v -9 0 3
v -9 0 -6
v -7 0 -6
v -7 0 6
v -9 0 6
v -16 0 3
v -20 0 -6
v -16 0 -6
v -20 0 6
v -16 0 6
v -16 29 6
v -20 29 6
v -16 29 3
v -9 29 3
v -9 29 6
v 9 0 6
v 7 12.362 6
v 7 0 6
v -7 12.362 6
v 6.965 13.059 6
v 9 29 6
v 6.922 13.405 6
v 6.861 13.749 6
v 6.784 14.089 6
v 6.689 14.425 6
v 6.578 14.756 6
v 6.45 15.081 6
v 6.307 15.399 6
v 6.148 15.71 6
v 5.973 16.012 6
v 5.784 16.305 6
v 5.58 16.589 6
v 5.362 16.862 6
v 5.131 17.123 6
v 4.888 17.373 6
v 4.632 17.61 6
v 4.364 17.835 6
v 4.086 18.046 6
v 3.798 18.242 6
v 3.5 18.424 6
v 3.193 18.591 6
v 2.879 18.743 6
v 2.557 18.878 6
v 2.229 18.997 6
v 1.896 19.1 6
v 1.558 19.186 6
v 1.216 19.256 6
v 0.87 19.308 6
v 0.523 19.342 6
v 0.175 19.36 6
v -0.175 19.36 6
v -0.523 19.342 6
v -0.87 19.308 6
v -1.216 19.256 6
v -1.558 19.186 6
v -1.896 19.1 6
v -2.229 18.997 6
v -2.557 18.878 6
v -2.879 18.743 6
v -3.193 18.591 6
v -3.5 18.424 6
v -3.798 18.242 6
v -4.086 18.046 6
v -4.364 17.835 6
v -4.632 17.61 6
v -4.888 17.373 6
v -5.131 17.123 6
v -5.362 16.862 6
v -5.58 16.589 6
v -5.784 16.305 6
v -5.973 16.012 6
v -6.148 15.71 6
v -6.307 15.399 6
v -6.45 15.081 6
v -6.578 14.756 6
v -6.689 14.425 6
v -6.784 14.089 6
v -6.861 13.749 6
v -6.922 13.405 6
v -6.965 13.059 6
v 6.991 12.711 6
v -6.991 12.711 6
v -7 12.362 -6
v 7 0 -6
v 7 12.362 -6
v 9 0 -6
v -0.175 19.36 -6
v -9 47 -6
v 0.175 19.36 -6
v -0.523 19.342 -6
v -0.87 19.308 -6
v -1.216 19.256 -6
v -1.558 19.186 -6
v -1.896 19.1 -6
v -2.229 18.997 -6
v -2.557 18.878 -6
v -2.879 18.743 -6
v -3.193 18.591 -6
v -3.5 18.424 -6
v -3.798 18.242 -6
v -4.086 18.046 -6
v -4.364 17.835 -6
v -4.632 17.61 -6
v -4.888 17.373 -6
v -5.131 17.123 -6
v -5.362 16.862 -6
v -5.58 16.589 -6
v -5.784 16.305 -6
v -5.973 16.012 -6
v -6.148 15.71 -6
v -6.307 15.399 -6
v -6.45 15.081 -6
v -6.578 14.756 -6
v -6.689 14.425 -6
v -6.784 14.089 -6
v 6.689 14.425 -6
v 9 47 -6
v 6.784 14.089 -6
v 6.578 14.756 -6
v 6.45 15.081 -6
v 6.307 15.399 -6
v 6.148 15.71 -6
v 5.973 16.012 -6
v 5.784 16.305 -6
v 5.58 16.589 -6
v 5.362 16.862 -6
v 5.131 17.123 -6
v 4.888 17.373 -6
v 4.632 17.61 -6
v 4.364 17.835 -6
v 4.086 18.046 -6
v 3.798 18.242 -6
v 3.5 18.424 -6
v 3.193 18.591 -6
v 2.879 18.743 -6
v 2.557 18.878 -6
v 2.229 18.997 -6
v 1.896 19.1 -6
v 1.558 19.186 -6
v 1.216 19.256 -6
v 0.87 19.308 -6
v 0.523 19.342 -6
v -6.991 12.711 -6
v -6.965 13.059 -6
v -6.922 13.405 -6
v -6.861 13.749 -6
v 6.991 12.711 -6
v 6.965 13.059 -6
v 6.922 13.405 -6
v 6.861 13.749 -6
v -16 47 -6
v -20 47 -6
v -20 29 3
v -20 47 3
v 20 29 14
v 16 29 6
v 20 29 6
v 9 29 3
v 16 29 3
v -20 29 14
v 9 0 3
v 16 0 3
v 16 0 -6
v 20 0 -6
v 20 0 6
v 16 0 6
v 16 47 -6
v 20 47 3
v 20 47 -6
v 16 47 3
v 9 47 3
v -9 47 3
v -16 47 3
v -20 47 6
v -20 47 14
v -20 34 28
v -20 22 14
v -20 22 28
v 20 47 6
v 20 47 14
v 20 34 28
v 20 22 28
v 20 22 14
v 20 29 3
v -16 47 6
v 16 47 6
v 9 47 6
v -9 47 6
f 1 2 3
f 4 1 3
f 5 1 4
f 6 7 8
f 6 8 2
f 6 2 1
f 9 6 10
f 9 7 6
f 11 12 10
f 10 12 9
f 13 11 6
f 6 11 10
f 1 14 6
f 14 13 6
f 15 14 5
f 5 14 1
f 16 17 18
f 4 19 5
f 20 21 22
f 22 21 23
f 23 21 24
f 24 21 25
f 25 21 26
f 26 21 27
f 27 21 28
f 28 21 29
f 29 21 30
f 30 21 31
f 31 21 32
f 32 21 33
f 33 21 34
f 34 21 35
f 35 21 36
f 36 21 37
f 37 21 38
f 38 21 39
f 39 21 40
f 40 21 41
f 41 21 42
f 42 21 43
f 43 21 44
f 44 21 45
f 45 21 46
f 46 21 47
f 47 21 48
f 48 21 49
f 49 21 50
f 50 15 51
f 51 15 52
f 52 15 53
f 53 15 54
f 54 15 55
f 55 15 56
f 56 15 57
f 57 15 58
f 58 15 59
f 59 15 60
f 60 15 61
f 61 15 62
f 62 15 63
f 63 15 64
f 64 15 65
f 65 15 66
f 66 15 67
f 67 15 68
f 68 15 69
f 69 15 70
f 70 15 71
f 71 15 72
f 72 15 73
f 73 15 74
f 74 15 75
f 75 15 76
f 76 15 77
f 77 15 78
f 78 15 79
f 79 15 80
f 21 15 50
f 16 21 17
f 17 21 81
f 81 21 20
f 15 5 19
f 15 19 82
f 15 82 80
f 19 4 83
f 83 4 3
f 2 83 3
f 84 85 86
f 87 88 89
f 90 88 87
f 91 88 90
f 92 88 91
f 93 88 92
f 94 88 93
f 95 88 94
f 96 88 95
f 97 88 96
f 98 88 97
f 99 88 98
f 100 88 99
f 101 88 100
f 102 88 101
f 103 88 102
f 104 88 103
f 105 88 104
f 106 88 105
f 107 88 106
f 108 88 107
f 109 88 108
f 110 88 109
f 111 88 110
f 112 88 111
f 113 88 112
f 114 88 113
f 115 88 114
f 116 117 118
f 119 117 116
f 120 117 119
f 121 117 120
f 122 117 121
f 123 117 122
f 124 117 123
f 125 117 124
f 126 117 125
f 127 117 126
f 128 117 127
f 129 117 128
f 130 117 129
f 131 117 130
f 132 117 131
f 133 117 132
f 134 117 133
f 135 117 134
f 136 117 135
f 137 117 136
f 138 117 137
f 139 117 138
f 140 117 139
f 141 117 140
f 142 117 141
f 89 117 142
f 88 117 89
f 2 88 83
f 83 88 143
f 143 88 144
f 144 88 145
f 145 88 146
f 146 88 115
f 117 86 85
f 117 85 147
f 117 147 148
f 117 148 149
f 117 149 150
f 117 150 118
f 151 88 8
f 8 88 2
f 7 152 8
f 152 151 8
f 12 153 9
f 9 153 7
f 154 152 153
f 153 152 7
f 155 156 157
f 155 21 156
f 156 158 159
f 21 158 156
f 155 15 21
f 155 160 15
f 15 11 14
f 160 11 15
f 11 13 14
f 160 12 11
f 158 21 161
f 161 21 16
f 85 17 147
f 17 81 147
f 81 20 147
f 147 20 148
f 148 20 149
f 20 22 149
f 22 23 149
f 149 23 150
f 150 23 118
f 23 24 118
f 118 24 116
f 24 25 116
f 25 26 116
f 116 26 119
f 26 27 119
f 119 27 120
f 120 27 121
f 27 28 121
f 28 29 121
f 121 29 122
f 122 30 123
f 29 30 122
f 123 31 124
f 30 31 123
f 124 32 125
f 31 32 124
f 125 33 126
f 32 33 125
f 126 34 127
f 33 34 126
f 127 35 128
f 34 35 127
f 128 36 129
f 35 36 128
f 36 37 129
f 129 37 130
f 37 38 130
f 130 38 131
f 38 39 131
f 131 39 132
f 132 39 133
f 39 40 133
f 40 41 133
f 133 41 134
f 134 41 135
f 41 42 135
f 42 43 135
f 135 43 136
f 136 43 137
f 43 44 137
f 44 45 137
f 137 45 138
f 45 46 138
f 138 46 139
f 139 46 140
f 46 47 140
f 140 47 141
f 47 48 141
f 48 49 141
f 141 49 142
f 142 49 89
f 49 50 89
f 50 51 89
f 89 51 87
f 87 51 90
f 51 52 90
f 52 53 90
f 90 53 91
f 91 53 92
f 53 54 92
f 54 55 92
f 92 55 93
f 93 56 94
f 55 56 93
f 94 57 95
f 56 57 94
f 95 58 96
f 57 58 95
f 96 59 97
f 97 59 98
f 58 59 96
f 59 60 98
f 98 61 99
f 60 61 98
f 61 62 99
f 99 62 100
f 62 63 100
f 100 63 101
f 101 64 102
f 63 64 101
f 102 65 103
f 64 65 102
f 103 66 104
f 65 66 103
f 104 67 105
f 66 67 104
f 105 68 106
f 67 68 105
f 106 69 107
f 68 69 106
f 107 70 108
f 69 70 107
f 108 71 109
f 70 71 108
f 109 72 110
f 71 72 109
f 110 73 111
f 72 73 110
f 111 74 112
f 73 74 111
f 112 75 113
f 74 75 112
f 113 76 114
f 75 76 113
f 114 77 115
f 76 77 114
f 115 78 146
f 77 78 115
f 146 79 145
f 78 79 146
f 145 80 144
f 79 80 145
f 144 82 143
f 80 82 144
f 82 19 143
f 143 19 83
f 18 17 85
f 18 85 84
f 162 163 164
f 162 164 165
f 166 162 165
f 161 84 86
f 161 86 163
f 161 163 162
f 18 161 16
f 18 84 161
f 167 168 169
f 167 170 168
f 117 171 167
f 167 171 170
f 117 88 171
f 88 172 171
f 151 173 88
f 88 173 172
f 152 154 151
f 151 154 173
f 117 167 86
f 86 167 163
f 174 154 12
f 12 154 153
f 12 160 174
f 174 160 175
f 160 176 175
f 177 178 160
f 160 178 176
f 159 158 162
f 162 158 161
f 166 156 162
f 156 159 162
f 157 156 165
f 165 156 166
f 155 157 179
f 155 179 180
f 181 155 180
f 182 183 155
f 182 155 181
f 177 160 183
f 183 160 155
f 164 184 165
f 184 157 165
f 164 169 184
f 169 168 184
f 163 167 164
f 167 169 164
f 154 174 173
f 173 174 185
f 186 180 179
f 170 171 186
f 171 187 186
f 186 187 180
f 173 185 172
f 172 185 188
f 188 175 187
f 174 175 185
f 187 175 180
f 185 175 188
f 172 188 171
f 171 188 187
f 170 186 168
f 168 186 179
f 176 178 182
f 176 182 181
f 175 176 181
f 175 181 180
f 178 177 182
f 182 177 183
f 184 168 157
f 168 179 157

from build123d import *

# Parameters (mm, degrees)
PAD_DEPTH         = 20
POCKET_DEPTH      = 6.001
POCKET_DEPTH_BACK = -28.001


with BuildPart() as part:
    # AdditivePipe: sweep along a path in Sketch
    with BuildLine(Plane.XY) as additivepipe_path:
        Line((0, 0), (0, 47))
    # Sketch001 → AdditivePipe (sweep)
    with BuildSketch(Plane.XZ):
        Polygon((-20, 6), (-20, -6), (-16, -6), (-9, -6), (9, -6), (16, -6), (20, -6), (20, 6), (16, 6), (16, 3), (9, 3), (9, 6), (-9, 6), (-9, 3), (-16, 3), (-16, 6), align=None)
    sweep(path=additivepipe_path.line)

    # Sketch002 → Pad (new body, symmetric)
    with BuildSketch(Plane.YZ):
        Polygon((47, 3), (47, 14), (34, 28), (22, 28), (22, 14), (29, 14), (29, 3), align=None)
    extrude(amount=PAD_DEPTH, both=True)

    # Sketch003 → Pocket (cut, two sides)
    with BuildSketch(Plane.XY) as pocket_sk:
        with BuildLine():
            ThreePointArc((7, 12.362), (0, 19.362), (-7, 12.362))
            Line((-7, 12.362), (-7, 0))
            Line((-7, 0), (7, 0))
            Line((7, 12.362), (7, 0))
        make_face()
    extrude(amount=-POCKET_DEPTH, mode=Mode.SUBTRACT)
    extrude(pocket_sk.sketch, amount=-POCKET_DEPTH_BACK, mode=Mode.SUBTRACT)


solid = part.part
